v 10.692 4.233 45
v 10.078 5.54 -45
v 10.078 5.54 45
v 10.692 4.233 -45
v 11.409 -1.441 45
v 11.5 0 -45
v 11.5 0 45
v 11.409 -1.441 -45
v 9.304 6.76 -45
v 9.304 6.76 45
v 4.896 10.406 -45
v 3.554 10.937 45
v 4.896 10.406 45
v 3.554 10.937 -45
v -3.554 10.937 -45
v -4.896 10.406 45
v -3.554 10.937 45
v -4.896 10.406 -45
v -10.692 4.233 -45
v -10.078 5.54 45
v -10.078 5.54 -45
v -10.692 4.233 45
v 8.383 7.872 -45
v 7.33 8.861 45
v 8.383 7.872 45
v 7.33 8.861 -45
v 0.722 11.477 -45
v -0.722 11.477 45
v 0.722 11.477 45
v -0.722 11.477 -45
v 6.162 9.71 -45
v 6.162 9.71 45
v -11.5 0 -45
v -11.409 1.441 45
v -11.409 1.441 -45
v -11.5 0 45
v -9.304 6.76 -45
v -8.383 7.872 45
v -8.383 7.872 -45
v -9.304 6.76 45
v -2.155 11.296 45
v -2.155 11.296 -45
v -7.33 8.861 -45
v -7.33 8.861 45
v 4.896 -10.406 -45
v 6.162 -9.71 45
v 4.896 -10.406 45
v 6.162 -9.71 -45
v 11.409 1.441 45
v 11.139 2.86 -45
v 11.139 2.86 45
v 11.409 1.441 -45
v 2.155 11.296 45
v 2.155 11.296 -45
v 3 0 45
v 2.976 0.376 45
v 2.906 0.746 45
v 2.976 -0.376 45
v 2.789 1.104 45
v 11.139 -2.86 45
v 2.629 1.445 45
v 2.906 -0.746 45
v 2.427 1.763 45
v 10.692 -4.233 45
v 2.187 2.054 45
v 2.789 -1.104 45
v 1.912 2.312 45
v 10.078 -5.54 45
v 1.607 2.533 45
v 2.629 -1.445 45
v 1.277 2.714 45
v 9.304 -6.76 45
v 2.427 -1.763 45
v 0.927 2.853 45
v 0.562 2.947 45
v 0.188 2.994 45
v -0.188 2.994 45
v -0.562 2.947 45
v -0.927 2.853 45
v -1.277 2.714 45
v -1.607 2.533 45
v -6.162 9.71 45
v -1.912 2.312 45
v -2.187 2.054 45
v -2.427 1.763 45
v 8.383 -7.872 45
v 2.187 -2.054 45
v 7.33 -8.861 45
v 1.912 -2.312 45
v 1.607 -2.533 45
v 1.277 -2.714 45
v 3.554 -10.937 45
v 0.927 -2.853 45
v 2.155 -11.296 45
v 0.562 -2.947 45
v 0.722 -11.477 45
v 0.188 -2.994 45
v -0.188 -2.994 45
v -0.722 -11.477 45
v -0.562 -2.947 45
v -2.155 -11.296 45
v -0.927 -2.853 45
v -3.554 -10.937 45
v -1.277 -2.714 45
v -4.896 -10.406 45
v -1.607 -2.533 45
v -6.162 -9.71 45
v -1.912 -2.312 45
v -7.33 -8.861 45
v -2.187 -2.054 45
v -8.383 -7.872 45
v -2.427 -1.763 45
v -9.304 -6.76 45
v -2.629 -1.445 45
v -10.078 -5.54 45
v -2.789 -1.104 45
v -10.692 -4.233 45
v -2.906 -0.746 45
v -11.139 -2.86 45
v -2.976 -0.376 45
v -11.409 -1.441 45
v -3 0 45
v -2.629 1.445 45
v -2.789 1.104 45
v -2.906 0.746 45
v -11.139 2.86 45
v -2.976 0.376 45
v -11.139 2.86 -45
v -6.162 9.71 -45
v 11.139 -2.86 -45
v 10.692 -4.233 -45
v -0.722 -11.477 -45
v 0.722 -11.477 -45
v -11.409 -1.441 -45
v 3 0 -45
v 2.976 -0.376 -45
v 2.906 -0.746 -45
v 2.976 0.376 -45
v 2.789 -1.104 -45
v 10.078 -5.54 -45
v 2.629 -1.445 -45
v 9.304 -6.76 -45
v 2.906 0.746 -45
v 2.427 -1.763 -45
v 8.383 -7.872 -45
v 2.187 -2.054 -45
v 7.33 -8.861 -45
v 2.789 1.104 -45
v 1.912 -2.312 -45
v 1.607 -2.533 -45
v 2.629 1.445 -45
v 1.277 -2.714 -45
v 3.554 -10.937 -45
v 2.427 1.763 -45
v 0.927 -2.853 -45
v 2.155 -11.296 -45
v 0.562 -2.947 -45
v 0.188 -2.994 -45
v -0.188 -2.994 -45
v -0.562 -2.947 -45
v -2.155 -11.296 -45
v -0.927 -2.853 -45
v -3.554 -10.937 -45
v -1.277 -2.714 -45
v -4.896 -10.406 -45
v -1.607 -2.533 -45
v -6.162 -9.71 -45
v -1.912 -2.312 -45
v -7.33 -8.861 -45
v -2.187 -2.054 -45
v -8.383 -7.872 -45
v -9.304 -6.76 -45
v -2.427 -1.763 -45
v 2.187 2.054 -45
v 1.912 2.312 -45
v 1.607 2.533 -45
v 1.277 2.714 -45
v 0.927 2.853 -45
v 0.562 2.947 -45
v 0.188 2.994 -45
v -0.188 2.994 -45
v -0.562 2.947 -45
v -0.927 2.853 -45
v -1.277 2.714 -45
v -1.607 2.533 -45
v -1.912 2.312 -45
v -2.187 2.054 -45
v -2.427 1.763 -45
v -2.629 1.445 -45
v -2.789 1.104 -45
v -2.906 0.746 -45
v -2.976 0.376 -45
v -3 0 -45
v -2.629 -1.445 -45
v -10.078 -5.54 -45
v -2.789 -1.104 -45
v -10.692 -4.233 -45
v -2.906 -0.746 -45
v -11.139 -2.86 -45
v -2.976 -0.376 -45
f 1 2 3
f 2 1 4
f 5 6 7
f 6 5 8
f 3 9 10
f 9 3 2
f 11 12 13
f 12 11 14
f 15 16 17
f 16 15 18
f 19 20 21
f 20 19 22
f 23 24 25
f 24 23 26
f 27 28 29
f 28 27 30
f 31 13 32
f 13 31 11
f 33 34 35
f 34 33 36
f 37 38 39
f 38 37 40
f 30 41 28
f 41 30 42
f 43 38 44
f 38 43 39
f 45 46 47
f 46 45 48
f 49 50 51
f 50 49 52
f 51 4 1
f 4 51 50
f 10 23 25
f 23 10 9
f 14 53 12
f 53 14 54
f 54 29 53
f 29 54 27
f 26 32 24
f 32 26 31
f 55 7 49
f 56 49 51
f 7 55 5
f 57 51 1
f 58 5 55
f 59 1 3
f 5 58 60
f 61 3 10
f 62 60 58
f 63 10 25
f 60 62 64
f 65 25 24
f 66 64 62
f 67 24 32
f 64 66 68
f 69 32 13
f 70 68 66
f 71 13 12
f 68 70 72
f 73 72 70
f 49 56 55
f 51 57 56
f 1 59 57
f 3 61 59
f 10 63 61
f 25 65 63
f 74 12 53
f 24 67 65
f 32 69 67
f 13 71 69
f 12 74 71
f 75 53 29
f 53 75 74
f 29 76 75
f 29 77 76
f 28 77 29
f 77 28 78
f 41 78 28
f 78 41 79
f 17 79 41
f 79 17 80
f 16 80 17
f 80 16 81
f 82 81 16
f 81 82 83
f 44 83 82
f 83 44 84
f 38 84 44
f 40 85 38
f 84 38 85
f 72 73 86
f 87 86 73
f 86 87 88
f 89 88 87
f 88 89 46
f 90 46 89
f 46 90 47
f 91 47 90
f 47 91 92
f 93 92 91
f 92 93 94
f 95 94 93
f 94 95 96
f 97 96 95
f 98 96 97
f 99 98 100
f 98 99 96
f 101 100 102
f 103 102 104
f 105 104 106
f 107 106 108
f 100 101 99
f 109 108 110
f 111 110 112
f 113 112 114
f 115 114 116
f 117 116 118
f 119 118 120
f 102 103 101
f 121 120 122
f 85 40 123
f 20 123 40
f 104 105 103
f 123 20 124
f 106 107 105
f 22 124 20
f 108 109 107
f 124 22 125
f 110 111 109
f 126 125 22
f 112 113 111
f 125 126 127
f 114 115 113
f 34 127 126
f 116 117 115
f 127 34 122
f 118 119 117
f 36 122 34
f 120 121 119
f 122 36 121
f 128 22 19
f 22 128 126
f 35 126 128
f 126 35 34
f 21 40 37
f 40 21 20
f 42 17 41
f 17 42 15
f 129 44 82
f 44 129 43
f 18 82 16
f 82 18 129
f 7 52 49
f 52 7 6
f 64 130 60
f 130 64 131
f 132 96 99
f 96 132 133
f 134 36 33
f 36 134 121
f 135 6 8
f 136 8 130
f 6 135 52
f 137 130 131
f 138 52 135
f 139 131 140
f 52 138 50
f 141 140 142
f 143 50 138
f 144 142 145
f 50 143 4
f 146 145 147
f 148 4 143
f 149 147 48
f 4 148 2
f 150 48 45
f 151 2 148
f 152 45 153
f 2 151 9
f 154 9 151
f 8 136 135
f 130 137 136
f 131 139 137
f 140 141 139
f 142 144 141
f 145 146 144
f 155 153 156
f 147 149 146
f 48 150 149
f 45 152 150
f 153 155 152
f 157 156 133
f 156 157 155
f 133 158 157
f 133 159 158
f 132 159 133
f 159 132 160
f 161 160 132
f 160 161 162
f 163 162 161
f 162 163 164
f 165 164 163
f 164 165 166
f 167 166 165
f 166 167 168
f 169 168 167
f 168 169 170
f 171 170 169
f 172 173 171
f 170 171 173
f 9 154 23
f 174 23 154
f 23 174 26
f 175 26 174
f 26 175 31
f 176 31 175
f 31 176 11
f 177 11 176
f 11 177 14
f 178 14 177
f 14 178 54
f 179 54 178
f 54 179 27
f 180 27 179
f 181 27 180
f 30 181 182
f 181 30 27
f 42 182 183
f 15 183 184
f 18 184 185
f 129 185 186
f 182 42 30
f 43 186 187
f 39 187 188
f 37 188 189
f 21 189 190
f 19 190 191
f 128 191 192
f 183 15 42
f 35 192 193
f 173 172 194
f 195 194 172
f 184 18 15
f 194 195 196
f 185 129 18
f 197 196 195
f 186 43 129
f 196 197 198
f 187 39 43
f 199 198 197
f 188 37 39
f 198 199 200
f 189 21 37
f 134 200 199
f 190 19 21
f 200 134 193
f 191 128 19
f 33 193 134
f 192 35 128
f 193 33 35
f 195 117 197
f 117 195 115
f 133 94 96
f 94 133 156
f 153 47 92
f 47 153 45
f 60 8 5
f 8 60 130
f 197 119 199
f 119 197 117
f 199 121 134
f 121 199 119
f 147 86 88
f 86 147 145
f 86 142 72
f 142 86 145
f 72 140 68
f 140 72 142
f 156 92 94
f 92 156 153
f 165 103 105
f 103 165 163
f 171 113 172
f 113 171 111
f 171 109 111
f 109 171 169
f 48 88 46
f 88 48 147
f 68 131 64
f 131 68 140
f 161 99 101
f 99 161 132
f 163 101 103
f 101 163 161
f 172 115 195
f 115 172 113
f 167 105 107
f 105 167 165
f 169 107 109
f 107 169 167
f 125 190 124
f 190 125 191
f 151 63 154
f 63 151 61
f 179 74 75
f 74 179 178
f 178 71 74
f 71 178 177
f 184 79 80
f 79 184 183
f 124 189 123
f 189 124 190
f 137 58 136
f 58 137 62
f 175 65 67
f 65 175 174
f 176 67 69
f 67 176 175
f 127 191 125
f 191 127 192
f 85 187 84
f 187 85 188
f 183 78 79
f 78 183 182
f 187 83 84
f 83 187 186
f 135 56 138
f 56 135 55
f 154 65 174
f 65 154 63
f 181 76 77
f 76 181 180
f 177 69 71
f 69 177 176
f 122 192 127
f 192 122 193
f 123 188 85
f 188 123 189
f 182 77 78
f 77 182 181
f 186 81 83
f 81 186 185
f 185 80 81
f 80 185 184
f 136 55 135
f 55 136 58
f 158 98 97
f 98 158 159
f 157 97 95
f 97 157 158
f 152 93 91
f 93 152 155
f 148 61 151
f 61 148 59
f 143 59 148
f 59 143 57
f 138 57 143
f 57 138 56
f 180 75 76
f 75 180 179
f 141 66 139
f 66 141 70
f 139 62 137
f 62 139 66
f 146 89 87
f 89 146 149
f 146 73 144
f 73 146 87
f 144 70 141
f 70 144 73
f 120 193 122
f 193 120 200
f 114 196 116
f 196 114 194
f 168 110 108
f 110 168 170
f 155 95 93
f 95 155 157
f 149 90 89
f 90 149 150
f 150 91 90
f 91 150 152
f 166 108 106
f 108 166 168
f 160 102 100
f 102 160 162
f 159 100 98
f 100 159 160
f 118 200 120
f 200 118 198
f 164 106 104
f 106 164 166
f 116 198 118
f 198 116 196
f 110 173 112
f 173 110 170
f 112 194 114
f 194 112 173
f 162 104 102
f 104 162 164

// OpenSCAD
$fn = 50;


difference() {
	union() {
		translate(v = [0, 0, -45.0000000000]) {
			cylinder(h = 90, r = 11.5000000000);
		}
	}
	union() {
		translate(v = [0, 0, -100.0000000000]) {
			cylinder(h = 200, r = 3);
		}
	}
}
